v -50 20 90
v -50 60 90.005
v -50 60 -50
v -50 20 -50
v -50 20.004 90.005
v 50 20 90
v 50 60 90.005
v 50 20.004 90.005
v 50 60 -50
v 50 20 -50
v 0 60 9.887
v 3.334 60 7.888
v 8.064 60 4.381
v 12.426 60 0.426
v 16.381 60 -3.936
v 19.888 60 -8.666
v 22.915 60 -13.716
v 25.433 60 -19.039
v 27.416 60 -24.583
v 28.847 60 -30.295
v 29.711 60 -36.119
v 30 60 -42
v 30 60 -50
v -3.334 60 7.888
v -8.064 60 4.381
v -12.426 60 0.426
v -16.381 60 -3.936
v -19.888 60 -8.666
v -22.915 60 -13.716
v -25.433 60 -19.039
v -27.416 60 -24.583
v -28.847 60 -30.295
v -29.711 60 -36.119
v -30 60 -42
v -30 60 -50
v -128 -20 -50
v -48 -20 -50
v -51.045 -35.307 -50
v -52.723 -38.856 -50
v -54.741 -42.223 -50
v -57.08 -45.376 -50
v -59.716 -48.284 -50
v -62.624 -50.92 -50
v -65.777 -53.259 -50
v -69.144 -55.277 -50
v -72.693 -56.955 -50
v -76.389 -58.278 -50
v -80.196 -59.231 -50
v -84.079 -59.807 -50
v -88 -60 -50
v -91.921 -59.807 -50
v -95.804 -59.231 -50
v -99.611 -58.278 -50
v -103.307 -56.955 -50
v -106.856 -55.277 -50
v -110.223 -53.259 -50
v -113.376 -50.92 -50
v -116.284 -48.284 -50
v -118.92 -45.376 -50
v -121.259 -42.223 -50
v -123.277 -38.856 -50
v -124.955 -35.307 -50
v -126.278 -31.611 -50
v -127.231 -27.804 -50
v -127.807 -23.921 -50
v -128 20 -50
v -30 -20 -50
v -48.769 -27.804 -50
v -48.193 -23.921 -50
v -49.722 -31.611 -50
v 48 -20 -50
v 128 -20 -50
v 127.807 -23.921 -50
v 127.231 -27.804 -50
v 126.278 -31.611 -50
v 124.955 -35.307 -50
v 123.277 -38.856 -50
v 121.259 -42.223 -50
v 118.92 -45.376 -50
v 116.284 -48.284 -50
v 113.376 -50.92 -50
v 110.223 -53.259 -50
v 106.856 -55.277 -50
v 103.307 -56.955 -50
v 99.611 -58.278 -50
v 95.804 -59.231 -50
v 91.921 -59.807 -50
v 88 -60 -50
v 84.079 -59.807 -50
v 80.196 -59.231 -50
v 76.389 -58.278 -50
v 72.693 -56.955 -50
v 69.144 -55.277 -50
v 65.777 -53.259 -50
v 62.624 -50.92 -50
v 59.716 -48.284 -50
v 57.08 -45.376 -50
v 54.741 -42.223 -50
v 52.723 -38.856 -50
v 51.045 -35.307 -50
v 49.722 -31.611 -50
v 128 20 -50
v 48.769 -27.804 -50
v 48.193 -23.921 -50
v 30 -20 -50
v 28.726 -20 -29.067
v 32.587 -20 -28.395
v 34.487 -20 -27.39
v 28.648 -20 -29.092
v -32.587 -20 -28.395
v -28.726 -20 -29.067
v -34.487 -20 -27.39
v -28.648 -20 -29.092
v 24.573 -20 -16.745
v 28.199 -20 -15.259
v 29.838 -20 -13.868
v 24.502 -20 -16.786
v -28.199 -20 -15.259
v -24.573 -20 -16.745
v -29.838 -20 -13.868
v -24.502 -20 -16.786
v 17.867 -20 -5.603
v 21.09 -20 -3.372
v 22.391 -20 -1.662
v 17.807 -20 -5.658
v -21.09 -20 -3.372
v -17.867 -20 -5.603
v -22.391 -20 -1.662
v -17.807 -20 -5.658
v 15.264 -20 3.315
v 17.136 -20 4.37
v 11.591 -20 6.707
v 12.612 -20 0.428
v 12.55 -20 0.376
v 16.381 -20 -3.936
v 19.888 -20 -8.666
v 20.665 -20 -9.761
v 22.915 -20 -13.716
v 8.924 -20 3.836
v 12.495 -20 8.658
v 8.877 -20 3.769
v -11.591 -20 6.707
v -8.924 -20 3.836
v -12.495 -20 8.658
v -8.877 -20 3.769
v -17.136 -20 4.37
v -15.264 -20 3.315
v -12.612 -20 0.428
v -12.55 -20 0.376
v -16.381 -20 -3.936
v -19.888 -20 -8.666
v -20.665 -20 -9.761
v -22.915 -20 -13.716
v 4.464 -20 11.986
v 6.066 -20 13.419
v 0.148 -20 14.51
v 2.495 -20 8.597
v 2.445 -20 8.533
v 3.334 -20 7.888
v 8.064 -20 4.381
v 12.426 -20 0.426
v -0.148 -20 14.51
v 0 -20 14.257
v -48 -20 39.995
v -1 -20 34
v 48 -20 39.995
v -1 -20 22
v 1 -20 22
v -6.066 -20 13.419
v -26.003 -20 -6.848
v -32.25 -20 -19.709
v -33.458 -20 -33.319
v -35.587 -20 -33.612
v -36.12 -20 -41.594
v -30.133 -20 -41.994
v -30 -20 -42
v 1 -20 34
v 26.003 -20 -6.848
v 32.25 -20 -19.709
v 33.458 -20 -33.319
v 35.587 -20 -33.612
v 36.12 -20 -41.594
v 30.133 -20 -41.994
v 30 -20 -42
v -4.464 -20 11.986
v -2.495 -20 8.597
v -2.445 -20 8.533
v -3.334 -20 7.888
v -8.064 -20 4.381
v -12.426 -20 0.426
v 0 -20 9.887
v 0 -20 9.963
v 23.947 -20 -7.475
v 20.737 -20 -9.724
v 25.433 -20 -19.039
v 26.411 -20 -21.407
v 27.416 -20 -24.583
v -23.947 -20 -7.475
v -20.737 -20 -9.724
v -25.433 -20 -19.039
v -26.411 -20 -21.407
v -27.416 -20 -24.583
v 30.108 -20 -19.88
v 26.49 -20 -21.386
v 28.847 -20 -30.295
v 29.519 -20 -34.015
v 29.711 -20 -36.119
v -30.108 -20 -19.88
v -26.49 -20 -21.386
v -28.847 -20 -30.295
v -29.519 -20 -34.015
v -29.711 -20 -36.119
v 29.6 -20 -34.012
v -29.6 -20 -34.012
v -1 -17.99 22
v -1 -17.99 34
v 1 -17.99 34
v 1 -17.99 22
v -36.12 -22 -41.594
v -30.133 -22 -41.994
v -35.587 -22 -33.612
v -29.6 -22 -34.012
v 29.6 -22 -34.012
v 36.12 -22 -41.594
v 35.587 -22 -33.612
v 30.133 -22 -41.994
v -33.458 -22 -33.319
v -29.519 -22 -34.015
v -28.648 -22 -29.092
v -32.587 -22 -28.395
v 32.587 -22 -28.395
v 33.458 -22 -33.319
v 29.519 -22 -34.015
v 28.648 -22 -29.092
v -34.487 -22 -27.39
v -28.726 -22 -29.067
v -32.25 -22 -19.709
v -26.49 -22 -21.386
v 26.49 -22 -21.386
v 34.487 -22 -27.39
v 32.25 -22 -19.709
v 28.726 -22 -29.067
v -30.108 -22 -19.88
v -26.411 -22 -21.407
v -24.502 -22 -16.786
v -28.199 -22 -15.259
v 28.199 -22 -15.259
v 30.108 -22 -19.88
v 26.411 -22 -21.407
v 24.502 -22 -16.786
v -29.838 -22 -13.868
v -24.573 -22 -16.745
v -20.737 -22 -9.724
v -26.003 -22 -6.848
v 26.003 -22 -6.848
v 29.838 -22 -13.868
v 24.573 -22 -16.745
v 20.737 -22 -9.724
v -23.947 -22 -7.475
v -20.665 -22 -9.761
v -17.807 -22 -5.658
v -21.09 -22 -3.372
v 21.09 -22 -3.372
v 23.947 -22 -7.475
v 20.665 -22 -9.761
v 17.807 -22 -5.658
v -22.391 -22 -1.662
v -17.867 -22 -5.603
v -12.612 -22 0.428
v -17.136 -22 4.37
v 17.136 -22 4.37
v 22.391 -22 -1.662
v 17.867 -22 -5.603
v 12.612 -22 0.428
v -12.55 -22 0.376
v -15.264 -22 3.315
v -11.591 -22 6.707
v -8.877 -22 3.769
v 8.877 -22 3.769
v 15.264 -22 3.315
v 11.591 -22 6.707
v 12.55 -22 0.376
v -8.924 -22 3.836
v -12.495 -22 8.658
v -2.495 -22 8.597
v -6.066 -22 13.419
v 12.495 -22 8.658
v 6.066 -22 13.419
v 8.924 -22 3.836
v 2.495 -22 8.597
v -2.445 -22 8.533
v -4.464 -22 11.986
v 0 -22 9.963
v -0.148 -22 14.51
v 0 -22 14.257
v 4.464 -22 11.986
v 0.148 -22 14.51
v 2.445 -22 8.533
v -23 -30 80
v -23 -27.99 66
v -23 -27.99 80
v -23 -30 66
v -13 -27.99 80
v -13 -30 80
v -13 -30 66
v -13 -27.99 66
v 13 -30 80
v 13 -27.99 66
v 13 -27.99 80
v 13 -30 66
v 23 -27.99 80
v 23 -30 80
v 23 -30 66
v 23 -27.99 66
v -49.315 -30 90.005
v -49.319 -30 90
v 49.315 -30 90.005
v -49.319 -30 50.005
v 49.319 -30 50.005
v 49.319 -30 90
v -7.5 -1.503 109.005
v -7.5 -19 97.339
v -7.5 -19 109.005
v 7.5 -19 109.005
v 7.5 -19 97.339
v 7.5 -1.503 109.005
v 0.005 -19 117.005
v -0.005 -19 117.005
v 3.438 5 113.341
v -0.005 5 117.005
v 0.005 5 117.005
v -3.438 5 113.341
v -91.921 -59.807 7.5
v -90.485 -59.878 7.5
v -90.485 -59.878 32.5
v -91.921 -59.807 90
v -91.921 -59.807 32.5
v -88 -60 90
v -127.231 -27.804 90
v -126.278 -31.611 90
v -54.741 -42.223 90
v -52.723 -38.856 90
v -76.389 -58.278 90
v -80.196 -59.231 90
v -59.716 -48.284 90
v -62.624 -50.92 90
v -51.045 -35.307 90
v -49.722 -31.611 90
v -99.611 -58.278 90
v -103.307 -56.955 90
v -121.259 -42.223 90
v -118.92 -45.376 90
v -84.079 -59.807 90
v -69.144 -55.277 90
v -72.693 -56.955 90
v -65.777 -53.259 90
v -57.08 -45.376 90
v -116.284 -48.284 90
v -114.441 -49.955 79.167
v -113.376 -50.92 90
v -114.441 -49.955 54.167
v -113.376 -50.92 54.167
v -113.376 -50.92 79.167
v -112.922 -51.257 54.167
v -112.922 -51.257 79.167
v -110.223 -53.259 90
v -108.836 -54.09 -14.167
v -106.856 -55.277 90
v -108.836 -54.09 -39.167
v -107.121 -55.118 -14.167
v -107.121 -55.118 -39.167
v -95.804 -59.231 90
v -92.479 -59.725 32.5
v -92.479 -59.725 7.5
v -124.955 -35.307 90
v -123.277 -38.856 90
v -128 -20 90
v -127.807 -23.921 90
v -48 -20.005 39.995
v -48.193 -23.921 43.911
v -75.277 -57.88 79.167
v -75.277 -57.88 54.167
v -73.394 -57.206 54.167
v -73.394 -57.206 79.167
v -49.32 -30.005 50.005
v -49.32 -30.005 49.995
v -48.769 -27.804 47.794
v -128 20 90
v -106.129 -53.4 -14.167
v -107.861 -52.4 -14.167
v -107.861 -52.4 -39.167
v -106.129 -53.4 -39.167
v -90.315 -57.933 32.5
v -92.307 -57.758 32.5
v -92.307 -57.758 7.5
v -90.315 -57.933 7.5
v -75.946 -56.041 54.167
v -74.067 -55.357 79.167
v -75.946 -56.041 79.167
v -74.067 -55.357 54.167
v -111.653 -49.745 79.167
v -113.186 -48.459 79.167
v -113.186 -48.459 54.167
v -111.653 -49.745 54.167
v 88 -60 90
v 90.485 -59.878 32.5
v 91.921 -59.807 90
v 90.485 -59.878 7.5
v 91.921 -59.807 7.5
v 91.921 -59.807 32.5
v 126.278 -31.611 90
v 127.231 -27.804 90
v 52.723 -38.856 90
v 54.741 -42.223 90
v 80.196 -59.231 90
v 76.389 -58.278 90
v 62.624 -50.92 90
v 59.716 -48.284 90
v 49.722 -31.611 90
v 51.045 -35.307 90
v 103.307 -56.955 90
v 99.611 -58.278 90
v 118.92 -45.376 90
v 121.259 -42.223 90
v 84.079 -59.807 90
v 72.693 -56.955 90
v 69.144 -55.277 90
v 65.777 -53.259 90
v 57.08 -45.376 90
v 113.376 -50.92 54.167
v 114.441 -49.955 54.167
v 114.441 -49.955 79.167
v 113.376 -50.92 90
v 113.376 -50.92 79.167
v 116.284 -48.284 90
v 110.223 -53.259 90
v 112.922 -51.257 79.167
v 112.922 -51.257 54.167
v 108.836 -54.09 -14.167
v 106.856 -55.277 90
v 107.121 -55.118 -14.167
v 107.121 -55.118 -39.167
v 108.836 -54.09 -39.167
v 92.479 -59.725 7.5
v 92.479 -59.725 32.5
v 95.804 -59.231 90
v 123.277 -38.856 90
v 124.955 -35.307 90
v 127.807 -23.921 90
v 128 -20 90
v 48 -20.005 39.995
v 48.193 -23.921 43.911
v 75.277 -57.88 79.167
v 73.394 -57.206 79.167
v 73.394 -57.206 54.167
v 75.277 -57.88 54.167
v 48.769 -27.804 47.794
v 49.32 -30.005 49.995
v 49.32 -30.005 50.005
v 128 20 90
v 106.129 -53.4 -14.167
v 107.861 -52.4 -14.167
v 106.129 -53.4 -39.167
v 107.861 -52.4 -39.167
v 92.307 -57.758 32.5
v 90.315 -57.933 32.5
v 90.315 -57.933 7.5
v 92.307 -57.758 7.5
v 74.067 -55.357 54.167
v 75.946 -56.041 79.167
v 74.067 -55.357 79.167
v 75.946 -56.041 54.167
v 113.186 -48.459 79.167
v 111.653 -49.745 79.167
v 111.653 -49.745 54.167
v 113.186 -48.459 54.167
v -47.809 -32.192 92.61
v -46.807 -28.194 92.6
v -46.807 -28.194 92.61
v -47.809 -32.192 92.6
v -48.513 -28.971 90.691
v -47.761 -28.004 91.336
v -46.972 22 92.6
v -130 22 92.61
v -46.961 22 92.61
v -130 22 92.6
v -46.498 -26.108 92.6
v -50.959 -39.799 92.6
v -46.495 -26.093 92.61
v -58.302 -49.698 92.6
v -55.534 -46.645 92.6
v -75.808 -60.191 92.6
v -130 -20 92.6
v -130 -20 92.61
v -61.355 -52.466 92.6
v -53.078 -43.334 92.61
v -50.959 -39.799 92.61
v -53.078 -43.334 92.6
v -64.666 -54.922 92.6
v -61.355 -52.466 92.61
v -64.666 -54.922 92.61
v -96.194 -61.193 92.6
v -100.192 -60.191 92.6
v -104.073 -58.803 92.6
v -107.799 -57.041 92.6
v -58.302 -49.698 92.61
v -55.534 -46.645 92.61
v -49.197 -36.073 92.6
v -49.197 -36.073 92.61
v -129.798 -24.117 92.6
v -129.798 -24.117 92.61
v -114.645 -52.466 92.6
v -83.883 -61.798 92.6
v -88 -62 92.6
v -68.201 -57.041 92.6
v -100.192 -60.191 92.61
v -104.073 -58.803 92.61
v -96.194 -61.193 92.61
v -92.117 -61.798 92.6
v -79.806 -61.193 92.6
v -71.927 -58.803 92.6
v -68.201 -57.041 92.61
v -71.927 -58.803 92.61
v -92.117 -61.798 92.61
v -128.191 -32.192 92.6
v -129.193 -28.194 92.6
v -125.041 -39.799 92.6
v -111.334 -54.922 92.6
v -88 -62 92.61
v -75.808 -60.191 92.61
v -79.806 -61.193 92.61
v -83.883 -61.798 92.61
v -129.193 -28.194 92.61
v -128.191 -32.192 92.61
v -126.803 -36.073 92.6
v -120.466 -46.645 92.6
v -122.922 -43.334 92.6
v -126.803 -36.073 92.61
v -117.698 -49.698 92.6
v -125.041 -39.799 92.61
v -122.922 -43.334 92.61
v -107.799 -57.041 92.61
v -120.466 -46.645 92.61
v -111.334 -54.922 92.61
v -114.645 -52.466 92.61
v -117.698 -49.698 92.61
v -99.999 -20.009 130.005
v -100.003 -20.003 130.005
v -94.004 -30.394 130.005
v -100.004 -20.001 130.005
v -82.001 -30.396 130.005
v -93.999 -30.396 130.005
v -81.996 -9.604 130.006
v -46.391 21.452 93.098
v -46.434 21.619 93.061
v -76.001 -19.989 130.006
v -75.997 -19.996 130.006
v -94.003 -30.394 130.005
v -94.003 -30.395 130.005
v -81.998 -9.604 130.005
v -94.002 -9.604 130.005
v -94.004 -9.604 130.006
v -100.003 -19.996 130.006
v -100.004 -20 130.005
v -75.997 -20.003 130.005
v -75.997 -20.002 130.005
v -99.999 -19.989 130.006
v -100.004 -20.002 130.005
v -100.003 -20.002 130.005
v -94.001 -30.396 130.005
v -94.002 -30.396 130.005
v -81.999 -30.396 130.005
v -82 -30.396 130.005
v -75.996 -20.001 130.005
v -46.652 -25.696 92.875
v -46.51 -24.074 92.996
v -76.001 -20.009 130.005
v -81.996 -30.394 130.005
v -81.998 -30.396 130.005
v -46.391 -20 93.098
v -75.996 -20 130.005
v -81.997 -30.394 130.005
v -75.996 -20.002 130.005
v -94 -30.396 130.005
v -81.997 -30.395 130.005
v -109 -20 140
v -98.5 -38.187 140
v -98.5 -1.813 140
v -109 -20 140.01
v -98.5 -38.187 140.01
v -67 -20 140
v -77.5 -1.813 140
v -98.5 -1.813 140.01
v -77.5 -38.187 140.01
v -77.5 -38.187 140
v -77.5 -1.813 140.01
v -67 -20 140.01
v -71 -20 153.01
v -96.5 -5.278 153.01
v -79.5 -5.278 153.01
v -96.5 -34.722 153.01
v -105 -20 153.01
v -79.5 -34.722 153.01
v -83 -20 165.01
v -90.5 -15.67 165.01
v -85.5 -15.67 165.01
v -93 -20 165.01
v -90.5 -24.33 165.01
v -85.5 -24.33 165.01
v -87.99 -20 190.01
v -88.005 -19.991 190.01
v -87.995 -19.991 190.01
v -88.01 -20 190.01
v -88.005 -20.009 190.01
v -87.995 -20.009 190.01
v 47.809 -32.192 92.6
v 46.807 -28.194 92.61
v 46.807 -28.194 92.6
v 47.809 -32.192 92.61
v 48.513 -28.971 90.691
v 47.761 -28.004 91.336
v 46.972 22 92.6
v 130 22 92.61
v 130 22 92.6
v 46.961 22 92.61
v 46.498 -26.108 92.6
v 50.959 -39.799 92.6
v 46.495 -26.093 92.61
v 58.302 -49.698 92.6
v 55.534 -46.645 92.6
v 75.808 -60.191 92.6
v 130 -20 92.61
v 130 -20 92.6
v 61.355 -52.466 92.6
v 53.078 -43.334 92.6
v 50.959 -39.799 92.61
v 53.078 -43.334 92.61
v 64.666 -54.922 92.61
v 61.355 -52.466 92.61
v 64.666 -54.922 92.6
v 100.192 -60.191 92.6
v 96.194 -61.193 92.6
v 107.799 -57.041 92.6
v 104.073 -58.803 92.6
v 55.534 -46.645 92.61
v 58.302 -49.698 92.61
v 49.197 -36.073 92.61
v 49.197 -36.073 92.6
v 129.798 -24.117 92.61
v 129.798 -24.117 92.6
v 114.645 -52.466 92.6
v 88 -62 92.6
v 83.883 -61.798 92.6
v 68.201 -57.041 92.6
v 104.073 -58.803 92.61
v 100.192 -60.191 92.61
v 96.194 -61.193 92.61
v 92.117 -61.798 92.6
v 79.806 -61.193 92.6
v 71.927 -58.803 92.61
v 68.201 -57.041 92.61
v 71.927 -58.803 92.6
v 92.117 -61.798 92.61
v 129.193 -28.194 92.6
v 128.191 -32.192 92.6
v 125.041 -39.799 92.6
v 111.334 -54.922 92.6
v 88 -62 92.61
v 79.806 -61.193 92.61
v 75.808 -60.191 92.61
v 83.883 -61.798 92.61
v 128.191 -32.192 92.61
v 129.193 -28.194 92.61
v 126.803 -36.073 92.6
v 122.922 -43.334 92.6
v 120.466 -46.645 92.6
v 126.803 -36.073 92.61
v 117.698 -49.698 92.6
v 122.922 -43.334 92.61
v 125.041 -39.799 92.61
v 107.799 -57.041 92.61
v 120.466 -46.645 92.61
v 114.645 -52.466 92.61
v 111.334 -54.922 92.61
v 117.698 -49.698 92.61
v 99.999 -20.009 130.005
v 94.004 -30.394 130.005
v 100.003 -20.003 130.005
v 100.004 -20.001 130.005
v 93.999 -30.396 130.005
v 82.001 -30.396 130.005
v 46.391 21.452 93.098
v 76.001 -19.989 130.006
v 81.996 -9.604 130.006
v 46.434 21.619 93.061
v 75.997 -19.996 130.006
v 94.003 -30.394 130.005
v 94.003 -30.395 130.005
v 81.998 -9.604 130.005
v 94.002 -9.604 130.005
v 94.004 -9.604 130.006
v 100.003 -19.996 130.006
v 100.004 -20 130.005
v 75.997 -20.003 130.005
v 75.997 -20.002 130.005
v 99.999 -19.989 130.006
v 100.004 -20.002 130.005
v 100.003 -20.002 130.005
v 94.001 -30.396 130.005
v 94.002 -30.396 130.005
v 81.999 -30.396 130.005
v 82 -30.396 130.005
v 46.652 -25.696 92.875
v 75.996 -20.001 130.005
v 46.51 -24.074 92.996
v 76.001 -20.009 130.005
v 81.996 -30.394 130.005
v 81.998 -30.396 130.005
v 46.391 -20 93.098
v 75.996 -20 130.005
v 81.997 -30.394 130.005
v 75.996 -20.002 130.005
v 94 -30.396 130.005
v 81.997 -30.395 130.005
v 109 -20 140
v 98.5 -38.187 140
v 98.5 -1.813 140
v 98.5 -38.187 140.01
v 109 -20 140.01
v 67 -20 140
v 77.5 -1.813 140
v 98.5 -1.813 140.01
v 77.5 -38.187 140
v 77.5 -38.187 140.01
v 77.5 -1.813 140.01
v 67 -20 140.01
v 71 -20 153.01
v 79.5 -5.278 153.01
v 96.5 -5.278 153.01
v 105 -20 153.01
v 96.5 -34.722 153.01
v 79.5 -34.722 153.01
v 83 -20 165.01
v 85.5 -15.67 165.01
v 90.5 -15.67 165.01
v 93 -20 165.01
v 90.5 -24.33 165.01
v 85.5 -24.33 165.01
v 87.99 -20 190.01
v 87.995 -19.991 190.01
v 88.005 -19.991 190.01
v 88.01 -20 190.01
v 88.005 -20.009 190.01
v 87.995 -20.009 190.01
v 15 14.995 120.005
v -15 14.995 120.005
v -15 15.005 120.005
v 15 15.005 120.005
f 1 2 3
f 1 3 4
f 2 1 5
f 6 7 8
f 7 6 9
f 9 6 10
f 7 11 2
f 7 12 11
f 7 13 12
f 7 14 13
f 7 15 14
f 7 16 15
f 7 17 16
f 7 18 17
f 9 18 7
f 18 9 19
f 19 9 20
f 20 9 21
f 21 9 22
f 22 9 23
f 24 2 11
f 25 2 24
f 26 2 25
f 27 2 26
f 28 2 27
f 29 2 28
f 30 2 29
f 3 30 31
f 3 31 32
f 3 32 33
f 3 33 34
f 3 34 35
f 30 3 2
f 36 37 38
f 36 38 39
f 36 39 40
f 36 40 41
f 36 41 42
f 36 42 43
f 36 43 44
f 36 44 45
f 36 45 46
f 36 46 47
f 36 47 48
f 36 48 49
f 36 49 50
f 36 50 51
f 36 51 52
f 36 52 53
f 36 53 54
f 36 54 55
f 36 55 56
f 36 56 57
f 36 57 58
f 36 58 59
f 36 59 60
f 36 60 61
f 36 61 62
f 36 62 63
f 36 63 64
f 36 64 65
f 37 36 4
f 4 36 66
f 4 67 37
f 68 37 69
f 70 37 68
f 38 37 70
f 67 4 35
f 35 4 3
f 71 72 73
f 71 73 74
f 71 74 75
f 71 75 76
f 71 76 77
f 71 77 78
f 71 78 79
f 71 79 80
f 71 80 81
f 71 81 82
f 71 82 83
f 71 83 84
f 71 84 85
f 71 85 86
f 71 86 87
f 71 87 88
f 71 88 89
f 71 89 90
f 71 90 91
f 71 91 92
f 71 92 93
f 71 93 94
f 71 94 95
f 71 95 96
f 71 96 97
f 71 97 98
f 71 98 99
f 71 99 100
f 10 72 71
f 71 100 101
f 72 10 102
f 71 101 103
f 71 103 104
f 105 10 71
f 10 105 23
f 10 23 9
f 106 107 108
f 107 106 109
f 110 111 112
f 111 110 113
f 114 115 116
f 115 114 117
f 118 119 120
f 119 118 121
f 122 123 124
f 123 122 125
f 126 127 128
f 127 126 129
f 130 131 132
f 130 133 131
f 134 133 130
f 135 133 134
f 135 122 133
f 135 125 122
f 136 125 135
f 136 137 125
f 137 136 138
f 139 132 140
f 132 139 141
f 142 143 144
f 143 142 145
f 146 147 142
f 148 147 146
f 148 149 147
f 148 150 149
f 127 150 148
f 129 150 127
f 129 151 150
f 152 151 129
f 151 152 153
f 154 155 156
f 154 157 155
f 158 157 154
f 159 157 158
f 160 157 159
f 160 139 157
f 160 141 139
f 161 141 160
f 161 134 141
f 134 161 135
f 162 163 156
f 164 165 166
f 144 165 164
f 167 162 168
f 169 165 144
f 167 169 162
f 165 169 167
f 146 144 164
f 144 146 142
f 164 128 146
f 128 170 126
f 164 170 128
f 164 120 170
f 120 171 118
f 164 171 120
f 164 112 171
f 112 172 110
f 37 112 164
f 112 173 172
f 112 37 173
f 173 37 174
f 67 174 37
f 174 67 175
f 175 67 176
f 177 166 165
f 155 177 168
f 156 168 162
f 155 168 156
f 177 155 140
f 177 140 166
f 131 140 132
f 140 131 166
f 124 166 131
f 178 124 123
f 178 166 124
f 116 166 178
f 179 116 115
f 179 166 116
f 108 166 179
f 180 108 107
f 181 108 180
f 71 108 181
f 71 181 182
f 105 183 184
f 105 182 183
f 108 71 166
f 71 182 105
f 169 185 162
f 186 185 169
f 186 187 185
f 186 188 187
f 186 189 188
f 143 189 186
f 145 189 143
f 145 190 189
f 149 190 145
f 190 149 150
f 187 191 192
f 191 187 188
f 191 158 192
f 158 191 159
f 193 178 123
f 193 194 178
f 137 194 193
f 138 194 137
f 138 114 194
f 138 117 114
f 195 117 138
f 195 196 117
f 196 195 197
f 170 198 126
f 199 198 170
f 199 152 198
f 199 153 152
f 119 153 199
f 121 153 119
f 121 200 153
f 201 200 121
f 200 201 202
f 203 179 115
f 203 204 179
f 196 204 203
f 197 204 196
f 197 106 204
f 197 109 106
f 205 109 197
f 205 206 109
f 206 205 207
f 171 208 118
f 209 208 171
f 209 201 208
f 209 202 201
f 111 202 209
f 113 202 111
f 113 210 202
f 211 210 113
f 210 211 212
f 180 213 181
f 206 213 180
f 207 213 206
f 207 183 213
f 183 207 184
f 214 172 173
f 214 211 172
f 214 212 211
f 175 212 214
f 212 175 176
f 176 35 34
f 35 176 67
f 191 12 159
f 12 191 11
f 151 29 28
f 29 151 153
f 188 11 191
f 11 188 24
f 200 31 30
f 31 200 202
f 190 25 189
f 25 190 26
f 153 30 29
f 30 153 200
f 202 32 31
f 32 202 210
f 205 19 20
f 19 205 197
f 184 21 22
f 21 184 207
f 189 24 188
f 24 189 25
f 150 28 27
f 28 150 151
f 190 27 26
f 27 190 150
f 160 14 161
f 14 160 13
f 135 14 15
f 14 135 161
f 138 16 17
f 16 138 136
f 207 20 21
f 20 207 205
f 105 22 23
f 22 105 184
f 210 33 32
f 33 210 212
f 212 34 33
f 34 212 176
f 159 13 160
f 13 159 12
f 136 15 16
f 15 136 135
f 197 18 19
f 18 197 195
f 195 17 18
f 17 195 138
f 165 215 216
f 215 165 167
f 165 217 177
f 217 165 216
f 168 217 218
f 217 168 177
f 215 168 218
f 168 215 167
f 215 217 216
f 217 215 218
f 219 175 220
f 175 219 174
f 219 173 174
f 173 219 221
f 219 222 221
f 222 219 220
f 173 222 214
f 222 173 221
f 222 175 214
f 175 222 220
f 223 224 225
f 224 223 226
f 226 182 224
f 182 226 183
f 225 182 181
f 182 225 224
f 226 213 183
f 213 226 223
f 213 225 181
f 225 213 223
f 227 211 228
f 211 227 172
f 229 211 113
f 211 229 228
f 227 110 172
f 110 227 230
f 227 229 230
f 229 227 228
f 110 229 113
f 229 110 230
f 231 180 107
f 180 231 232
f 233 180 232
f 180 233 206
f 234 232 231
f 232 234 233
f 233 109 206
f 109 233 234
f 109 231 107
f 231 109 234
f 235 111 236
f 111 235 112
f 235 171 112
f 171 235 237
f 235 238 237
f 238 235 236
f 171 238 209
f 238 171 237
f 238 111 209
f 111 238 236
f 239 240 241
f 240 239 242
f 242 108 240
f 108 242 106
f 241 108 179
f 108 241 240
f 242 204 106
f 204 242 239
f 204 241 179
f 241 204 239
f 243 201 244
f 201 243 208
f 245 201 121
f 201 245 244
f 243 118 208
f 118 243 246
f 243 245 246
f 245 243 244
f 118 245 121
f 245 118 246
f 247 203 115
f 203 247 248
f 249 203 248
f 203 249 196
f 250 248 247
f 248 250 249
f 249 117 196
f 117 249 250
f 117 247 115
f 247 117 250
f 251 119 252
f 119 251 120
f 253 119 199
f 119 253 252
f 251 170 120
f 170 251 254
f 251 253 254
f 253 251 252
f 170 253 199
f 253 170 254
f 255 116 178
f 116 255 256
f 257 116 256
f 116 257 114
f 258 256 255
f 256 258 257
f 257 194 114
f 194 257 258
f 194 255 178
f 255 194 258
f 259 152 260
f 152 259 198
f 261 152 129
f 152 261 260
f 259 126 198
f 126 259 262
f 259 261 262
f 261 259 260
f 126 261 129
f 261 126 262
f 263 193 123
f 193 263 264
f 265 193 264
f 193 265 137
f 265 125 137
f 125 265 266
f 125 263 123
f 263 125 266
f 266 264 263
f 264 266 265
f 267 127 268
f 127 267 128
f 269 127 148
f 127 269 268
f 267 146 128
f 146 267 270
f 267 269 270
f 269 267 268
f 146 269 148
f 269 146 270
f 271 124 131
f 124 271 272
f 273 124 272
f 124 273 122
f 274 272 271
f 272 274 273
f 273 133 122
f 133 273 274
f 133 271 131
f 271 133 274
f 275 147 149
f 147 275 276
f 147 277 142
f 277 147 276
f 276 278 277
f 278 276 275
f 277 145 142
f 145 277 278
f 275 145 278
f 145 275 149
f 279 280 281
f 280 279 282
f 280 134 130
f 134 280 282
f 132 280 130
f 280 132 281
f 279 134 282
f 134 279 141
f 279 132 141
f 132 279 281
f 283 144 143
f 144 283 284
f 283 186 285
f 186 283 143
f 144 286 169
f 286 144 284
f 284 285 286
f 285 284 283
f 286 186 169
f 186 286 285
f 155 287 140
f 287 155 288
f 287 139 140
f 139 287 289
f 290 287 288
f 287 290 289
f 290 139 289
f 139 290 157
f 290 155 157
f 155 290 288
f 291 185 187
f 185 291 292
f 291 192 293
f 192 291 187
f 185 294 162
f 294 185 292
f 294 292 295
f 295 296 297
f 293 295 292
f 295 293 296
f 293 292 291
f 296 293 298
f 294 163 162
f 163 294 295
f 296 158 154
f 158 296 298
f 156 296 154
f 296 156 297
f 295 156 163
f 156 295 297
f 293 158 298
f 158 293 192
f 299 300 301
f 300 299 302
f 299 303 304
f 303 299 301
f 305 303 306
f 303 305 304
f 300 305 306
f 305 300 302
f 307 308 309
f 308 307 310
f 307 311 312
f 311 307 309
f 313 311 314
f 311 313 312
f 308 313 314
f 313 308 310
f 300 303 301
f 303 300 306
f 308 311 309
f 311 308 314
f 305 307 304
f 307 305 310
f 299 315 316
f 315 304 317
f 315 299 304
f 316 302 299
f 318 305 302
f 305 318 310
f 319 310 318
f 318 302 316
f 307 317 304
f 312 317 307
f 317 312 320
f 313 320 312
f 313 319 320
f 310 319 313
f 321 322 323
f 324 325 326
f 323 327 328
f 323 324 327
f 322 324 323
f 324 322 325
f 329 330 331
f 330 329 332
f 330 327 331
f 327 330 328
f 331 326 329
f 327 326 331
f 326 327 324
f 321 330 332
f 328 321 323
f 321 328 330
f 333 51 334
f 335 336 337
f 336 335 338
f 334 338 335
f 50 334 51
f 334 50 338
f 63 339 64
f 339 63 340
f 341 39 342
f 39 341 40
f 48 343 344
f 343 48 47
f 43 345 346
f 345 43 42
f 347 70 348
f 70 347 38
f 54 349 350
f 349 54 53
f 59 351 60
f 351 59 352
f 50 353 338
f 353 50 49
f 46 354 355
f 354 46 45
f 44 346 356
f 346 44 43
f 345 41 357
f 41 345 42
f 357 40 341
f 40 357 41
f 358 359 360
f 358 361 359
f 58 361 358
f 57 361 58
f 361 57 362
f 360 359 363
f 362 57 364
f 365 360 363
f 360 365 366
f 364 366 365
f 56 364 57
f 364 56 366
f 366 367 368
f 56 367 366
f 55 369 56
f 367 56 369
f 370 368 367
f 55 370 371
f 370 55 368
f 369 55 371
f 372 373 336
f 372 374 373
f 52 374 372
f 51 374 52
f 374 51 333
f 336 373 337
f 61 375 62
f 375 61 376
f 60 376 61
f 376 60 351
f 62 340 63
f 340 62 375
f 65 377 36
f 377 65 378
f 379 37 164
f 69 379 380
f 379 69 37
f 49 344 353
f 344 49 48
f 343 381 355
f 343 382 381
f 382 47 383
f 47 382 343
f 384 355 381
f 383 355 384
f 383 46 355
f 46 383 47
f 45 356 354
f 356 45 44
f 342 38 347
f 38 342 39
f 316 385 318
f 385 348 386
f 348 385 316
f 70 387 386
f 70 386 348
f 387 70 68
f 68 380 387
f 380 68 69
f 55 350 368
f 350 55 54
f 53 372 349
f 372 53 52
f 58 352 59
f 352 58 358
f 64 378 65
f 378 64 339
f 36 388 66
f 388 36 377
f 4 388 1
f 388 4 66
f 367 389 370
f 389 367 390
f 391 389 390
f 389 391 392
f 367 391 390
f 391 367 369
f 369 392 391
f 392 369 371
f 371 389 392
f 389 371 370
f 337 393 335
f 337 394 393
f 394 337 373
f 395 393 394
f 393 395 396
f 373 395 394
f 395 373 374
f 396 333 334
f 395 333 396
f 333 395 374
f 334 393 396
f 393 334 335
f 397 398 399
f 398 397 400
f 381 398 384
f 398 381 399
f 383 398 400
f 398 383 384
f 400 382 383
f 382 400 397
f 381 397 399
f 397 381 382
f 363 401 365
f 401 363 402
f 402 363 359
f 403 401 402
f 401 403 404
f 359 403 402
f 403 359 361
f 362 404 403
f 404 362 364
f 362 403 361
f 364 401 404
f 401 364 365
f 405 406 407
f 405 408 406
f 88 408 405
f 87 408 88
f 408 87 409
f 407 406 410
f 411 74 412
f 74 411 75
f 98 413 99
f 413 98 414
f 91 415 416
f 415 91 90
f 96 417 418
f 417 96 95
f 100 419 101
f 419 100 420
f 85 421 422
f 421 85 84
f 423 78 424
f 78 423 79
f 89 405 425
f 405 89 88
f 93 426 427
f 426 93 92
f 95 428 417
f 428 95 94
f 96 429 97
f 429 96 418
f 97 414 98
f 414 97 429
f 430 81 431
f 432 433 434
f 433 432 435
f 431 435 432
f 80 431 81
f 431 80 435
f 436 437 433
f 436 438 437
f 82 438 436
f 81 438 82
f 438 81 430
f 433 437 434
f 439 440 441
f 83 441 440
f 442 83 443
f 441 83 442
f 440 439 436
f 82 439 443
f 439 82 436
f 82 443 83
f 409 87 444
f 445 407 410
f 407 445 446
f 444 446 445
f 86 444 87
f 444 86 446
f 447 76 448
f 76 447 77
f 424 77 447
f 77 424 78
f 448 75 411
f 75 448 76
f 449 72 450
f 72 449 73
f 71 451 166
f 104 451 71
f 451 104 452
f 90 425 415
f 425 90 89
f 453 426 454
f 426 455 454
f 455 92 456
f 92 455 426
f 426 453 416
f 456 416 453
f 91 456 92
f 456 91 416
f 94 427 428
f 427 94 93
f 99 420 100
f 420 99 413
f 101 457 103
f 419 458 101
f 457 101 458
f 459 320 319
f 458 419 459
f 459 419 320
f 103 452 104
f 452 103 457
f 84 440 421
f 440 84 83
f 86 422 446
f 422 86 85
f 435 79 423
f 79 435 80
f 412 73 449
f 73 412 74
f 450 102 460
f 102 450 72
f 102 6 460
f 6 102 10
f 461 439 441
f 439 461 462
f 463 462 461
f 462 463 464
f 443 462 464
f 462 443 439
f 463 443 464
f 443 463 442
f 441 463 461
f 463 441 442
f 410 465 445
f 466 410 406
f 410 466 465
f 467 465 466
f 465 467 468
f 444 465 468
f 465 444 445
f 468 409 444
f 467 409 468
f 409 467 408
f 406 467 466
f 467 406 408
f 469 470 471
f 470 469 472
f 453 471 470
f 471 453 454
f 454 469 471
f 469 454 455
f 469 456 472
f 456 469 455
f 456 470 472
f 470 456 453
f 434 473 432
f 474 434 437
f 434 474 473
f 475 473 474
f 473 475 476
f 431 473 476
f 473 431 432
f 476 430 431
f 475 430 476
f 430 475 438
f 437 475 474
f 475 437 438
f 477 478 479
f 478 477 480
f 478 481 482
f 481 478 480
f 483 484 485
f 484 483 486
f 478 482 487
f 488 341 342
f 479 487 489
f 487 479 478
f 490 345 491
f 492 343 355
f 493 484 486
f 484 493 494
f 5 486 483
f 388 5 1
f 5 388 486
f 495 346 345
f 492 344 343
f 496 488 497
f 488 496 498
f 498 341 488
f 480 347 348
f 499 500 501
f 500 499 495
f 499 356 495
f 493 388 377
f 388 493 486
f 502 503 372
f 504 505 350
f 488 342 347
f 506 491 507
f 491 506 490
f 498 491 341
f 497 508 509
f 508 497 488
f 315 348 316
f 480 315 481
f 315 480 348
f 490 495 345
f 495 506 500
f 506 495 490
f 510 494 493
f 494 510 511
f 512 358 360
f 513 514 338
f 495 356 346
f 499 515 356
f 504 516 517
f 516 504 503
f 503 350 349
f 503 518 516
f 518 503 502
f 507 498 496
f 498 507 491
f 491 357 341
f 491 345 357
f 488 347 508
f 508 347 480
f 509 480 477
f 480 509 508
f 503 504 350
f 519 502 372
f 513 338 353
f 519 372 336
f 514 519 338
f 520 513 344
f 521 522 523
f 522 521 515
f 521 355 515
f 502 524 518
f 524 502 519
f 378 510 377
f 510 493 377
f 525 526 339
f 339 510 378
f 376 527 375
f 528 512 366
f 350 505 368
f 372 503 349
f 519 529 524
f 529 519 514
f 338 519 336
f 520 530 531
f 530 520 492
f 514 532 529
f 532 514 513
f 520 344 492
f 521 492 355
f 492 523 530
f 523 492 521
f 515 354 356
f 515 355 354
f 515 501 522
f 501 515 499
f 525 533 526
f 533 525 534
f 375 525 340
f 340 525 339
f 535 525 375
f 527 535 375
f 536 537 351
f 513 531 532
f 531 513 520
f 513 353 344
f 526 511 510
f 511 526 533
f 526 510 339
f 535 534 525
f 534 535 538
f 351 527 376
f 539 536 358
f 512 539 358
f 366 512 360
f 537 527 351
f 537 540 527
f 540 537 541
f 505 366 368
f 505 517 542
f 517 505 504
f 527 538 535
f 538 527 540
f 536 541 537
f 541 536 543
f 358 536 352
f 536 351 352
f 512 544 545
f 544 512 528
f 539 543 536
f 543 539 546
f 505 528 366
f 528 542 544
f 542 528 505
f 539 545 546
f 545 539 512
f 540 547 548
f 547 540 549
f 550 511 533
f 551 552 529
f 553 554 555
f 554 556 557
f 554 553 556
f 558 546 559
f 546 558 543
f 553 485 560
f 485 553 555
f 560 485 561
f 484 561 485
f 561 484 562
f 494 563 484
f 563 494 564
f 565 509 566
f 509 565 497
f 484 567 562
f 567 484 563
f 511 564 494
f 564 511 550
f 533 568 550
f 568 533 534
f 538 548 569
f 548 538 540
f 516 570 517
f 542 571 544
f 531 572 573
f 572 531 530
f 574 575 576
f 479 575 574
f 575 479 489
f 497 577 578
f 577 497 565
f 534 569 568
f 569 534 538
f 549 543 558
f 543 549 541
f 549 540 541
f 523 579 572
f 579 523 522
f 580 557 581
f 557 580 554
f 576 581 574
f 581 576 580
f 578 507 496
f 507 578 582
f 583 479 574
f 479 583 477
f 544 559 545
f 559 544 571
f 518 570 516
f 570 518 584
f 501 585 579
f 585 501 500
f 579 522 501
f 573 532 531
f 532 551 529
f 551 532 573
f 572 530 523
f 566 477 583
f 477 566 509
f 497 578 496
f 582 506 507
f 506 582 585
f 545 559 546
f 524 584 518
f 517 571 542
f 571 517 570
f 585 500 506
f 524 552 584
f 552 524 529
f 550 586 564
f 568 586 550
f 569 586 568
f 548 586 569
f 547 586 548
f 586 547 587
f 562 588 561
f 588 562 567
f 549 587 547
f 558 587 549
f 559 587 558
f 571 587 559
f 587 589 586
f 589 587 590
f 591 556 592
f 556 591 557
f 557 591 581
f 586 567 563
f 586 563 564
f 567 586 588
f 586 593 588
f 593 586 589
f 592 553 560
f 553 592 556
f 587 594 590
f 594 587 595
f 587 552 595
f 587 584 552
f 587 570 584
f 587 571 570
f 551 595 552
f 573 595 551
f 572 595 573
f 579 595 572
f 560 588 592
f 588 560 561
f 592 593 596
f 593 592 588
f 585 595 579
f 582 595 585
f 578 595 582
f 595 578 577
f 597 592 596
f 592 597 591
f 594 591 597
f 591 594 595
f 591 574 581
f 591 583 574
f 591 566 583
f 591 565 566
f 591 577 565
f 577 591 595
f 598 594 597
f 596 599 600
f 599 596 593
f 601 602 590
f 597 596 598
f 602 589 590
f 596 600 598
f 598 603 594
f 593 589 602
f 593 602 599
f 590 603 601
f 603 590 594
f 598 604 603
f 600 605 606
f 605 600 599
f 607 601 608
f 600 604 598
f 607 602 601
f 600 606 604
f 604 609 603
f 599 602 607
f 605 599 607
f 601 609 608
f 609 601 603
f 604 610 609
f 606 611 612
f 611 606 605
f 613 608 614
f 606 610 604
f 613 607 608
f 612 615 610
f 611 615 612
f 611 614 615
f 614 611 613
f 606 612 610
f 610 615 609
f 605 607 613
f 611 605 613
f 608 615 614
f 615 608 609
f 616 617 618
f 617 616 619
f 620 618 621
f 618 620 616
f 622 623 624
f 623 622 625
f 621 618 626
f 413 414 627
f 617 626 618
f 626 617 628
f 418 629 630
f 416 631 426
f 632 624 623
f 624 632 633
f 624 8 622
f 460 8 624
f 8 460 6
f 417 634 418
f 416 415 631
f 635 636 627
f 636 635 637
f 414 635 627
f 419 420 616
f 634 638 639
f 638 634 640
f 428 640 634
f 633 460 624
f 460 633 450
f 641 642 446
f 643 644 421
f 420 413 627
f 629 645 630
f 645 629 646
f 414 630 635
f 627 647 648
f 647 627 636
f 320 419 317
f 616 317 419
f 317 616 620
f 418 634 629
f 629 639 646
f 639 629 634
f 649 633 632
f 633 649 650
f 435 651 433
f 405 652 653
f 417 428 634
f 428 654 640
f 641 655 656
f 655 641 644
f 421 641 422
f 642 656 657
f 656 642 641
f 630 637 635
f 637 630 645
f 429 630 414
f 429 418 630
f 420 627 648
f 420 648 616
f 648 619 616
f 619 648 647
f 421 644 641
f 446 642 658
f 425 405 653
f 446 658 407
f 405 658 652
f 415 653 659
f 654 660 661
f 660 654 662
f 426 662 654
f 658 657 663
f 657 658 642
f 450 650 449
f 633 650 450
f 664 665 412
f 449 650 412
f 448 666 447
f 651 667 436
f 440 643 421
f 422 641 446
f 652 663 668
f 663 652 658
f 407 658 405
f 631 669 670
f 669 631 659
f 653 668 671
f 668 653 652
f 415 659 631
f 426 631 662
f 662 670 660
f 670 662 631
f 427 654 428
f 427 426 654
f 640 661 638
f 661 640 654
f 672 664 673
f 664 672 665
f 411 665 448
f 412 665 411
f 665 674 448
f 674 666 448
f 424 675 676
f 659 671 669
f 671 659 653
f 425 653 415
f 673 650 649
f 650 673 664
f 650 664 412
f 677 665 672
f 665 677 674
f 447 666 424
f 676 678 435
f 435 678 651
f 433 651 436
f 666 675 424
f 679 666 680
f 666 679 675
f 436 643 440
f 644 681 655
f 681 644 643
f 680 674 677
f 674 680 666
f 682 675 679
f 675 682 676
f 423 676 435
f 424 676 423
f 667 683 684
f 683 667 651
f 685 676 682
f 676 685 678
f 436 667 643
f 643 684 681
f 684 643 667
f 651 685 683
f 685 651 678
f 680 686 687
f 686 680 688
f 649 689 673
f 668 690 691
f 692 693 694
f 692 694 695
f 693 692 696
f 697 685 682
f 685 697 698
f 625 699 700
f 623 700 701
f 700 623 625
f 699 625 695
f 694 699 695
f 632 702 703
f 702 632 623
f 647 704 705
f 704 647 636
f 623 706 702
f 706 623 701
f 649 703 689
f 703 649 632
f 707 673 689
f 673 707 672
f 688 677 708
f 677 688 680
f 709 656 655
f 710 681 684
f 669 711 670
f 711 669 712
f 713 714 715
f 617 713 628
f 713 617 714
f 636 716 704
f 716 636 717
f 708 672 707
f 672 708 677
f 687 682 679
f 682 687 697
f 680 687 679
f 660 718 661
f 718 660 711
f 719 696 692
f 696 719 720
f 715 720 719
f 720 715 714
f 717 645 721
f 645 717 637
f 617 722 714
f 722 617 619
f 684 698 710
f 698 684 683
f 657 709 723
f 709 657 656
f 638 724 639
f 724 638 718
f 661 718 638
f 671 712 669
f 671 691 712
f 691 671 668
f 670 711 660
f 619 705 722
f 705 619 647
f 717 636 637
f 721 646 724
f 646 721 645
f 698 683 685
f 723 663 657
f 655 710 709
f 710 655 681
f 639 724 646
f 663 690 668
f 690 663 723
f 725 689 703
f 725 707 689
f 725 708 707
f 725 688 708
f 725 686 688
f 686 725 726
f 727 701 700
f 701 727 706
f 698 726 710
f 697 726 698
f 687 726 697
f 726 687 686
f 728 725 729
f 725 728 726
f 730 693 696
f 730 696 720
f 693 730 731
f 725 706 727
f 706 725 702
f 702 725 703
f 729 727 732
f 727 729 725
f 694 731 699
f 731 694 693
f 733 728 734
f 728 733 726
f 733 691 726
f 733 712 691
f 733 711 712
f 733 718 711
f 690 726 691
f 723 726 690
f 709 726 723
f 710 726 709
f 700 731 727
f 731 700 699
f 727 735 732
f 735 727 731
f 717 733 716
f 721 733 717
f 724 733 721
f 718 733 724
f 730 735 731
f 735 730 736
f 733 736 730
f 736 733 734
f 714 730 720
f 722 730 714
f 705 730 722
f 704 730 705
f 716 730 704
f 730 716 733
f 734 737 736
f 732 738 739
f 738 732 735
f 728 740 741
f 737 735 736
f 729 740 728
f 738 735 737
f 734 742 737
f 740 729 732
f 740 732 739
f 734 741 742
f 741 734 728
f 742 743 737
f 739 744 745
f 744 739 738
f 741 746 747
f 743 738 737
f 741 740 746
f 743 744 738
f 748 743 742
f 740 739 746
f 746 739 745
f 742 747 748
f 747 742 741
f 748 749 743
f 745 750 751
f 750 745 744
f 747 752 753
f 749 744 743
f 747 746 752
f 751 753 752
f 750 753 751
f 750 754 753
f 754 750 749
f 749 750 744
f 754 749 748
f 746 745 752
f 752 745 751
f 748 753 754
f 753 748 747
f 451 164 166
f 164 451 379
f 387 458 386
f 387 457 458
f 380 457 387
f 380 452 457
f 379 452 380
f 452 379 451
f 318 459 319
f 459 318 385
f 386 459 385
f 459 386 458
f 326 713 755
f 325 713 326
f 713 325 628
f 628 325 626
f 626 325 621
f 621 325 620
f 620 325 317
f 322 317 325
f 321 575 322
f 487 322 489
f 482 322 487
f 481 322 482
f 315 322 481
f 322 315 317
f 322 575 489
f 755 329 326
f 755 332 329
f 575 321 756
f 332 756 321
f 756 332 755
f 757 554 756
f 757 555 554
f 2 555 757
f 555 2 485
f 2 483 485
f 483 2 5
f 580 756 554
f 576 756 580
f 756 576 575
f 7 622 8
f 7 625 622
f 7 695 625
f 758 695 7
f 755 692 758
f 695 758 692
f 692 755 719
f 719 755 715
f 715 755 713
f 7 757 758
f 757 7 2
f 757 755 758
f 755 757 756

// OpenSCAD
// Quader mit gotischem Spitzbogen-Tunnel

// Quader (unten)
box_w = 100;
box_d = 80;
box_h = 100;
box_y = 20;    // Y-Start (Mitte in Y, 0 = zentriert)

// Quader (oben)
box2_w = 100;
box2_d = 90;
box2_h = 40;
box2_y = 15;   // Y-Start (Mitte in Y, 0 = zentriert)

// Balken (zwischen box und box2)
balken_x = 0;                       // X-Mitte
balken_y = -25;   // Y-Mitte
balken_z = 45;   // Z-Mitte (liegt auf Oberkante box)
balken_w = box_w;                   // Breite (X)
balken_d = 10;                  // Tiefe  (Y)
balken_h = 10;                       // Höhe   (Z)


// Walmdach (trapezförmig)
roof_w       = 100;  // Breite (default = box2_w)
roof_d       = 90;   // Tiefe  (default = box2_d)
roof_h       = 30;   // Firsthöhe
roof_ridge_l = 30;   // Firstlänge (0 = Pyramide)

// Türme (Zylinder links/rechts)
tower_r  = 40;   // Radius
tower_h  = 140;  // Höhe
tower_x  = box_w/2 + 38;  // X-Offset (bündig am Quader)
tower_y  = -20;  // Y-Versatz
tower_z  = 20;   // Z-Versatz (Mitte des Zylinders)

// Schießschächte der Türme (3 Ebenen, oberste hat 2 Schächte)
slit_ang_start = 240;  // Startwinkel Ebene 0 (vorne = -Y)
slit_ang_step  = 25;   // Winkelversatz pro Ebene
slit_top_gap   = 60;   // Winkelabstand der 2 Schächte auf Ebene 3

// Turmdach (unten: rund → Sechseck, oben: Sechseck → Spitze)
tr_r1 = 42;   // Basisradius (etwas größer als Turm)
tr_r2 = 12;   // Radius am Übergang Unter-/Oberteil
tr_h1 = 40;   // Höhe Unterteil
tr_h2 = 60;   // Höhe Oberteil

// Spitzen-Profil: 3 Kontrollpunkte (Radius / Z-Position)
tr_p1_r = 21;  tr_p1_z = 10;
tr_p2_r = 17;  tr_p2_z = 23;
tr_p3_r =  5;  tr_p3_z = 35;

// Dachgaube
dg_w  = 15;   // Breite
dg_h  = 12;   // Höhe Quader
dg_d  =  24;   // Tiefe
dg_rh =  8;   // Höhe Dreieckdach
dg_y  = -7;  // Y-Position
dg_z  = 97;   // Z-Position (Unterkante)

// Box2-Fenster vorne (zwei rechteckige Nischen nebeneinander)
b2win_w     = 10;  // Breite je Fenster
b2win_h     = 14;  // Höhe je Fenster
b2win_gap   = 26;  // Abstand zwischen den beiden Fenstern
b2win_depth =  2;  // Eintiefung (max 2)
b2win_z     = 16;  // Z-Unterkante

// Tunnel
arch_span = 60;
arch_leg  = 10;
arch_r    = arch_span;

// Voussoirs (Bogensteine)
stone_n       = 10;   // Steine pro Bogenhälfte
stone_depth   = 2;   // Vorstand von der Vorderfläche
stone_h_big   = 6;   // radiale Dicke, großer Stein
stone_h_small = 4;   // radiale Dicke, kleiner Stein
stone_w_big   = 8;   // Breite entlang Bogen, großer Stein
stone_w_small = 5;   // Breite, kleiner Stein

// Schießschacht-Fenster (8 Steine: 3 links + 3 rechts + 1 oben + 1 unten)
win_z      = 28;   // Z-Mitte des Fensters
win_gap_w  = 2;    // freier Abstand zwischen linken und rechten Steinen
win_depth  = 2;    // Vorstand von der Vorderfläche
win_height = 12;

fr_h_big   = 5;
fr_h_small = 5;
fr_w_big   = 7;
fr_w_small = 5;
fr_n       = 3;    // Steine pro Seite → gesamt 3+3+1+1 = 8

function fr_h_at(i)  = (i % 2 == 0) ? fr_h_big  : fr_h_small;
function fr_w_at(i)  = (i % 2 == 0) ? fr_w_big  : fr_w_small;
function fr_cum_h(i) = (i == 0) ? 0 : fr_cum_h(i-1) + fr_h_at(i-1);

// ── Hilfsfunktionen: Breite/Höhe/Winkel pro Stein ────────────────────────────
function stone_w_at(i)   = (i % 2 == 0) ? stone_w_big   : stone_w_small;
function stone_h_at(i)   = (i % 2 == 0) ? stone_h_big   : stone_h_small;
function stone_ang_at(i) = stone_w_at(i) / arch_r * (180/PI);
function cum_ang(i)      = (i == 0) ? 0 : cum_ang(i-1) + stone_ang_at(i-1);

// ── Spitzbogen-Profil ─────────────────────────────────────────────────────────
module arch_2d(span, leg_h, r) {
    arch_tip_h = sqrt(r*r - (span/2)*(span/2));
    union() {
        translate([-span/2, 0])
            square([span, leg_h]);
        translate([0, leg_h])
        intersection() {
            translate([-span/2, 0]) circle(r=r, $fn=64);
            translate([ span/2, 0]) circle(r=r, $fn=64);
            translate([-r, 0]) square([2*r, arch_tip_h + 1]);
        }
    }
}

// ── Ein einzelner Voussoir ───────────────────────────────────────────────────
module stone_at(cx, cz, alpha_deg, h, w, depth, front_y) {
    sx = cx + arch_r * cos(alpha_deg);
    sz = cz + arch_r * sin(alpha_deg);
    translate([sx, front_y - depth/2, sz])
    rotate([0, -alpha_deg, 0])
    translate([h/2, 0, 0])
    cube([h, depth, w], center=true);
}

// ── Voussoir-Verzierung (Vorderseite) ────────────────────────────────────────
module arch_verzierung() {
    cr_x = arch_span/2;
    c_z  = arch_leg - box_h/2 - 2;
    fy   = -box_d/2;

    for (i = [0:stone_n-1]) {
        ang = 180 - cum_ang(i) - stone_ang_at(i)/2;
        stone_at(cr_x, c_z, ang, stone_h_at(i), stone_w_at(i), stone_depth, fy);
        mirror([1, 0, 0])
        stone_at(cr_x, c_z, ang, stone_h_at(i), stone_w_at(i), stone_depth, fy);
    }
}

// ── Schießschacht-Rahmensteine ────────────────────────────────────────────────
module fenster_rahmen() {
    fy      = -box_d/2;
    total_h = fr_cum_h(fr_n);
    z_start = win_z - total_h/2;
    cap_w   = win_gap_w + fr_w_big * 2;

    // 3 Seitensteine links und rechts (big-small-big)
    for (i = [0:fr_n-1]) {
        h   = fr_h_at(i);
        w   = fr_w_at(i);
        z_c = z_start + fr_cum_h(i) + h/2;
        for (side = [-1, 1])
            translate([side * (win_gap_w/2 + w/2), fy - win_depth/2, z_c])
            cube([w, win_depth, h], center=true);
    }

    // 1 Stein oben (breiter Abschluss)
    translate([0, fy - win_depth/2, z_start + total_h + fr_h_big/2])
        cube([cap_w, win_depth, fr_h_big], center=true);

    // 1 Stein unten
    translate([0, fy - win_depth/2, z_start - fr_h_small/2])
        cube([cap_w, win_depth, fr_h_small], center=true);
}

// ── Turm-Schießschacht: ein Rahmen auf der Zylinderoberfläche ─────────────────
module turm_koerper() {
    color("green")
    cylinder(r=tower_r, h=tower_h, center=true, $fn=64);
    // Rückseite: Quader von Mitte nach hinten (+Y)
    translate([-tower_r, 0, -tower_h/2])
        cube([2*tower_r, tower_r, tower_h]);
}

module turm_slit_at(ang, z_ctr) {
    total_h = fr_cum_h(fr_n) + fr_h_big + fr_h_small;
    rotate([0, 0, ang])
    translate([tower_r - win_depth/2, 0, z_ctr])
        cube([win_depth + 0.02, win_gap_w, total_h], center=true);
}

module turm_schlitze() {
    for (i = [0:2]) {
        turm_slit_at(slit_ang_start + i * slit_ang_step, -tower_h/3 + i * tower_h/3);
    }
    // 2. Schacht auf oberster Ebene (Winkel via slit_top_gap versetzt)
    turm_slit_at(slit_ang_start + 2*slit_ang_step - slit_top_gap, tower_h/3);
}

// ── Turmdach (Kreis → Sechseck → Kugel → Spitze) ────────────────────────────
module turmdach_spitze(r_base, h) {

    profile = [
        [r_base,  0      ],
        [tr_p1_r, tr_p1_z],
        [tr_p2_r, tr_p2_z],
        [tr_p3_r, tr_p3_z],
        [0.01,    h      ],
    ];
    for (i = [0:len(profile)-2]) {
        r0 = profile[i][0];    z0 = profile[i][1];
        r1 = profile[i+1][0];  z1 = profile[i+1][1];
        translate([0, 0, z0])
        hull() {
            cylinder(r=r0, h=0.01, $fn=6);
            translate([0, 0, z1-z0])
                cylinder(r=r1, h=0.01, $fn=6);
        }
    }
}

// D-förmiger Fuß (Zylinder + Rückseite) als dünne Scheibe bei Radius r
module turmdach_dscheibe(r) {
    cylinder(r=r, h=0.01, $fn=64);
    translate([-r, 0, 0])
        cube([2*r, r, 0.01]);
}

module turmdach(r1, r2, h1, h2) {
    base_r = tower_r;                 // Fuß bündig mit dem Turm → kein Überhang
    cham_h = (r1 - base_r) * 1.3;     // Fasenhöhe (~52° Unterseite, kein Support)
    color("red") {
        // Traufen-Fase: schräg vom Turmradius hoch zur Traufe (druckbar)
        hull() {
            turmdach_dscheibe(base_r );
            translate([0, 0, cham_h]) turmdach_dscheibe(r1);
        }
        // Hauptkegel: Traufe → Sechseck oben
        translate([0, 0, cham_h])
        hull() {
            turmdach_dscheibe(r1);
            translate([0, 0, h1 - cham_h])
                cylinder(r=r2, h=0.01, $fn=6);
        }
    }
    // Oberteil: sechseckige Kontur → Spitze
    translate([0, 0, h1])
        turmdach_spitze(r2, h2);
}

// ── Dachgaube (Quader + Satteldach) ──────────────────────────────────────────
module dachgaube(w, h, d, rh) {
    cube([w, d, h], center=true);
    translate([0, 0, h/2])
    hull() {
        cube([w, d, 0.01], center=true);
        translate([0, 0, rh])
            cube([0.01, d, 0.01], center=true);
    }
}

// ── Kehlleiste: Viertelkreis-Profil ──────────────────────────────────────────
module kehlleiste_profil(r) {
    difference() {
        square(r * 2);
        circle(r);
    }
}

// ── Box2-Fenster: zwei rechteckige Nischen nebeneinander ─────────────────────
module fenster_box2_paar() {
    // intersection: zwei tiefe Schlitze × Tiefenbegrenzer = max b2win_depth tief
    intersection() {
        union() {
            translate([-(b2win_gap/2 + b2win_w), -0.01, 0])
                cube([b2win_w, 100, b2win_h]);
            translate([b2win_gap/2, -0.01, 0])
                cube([b2win_w, 100, b2win_h]);
        }
        translate([-(b2win_gap/2 + b2win_w) - 1, -0.01, -1])
            cube([2*b2win_w + b2win_gap + 2, b2win_depth + 0.02, b2win_h + 2]);
    }
}


// ── Walmdach ──────────────────────────────────────────────────────────────────
module walmdach(w, d, h, ridge_l) {
    hull() {
        cube([w, d, 0.01], center=true);
        translate([0, 0, h])
            cube([max(ridge_l, 0.01), 0.01, 0.01], center=true);
    }
}


// ── Balken (45°-Fase als Stützersatz für den Überhang) ───────────────────────
// Gerader Keil statt rundem Zylinderschnitt: die Unterseite läuft mit
// konstanter Neigung von der box-Vorderkante hoch zur box2-Vorderkante,
// dadurch nirgends flacher als die Druckbarkeitsgrenze (kein Support nötig).
module balken(x, y, z, w, d, h) {
    yb = y + d/2;   // box-Seite  (hinten, +Y)
    yf = y - d/2;   // box2-Seite (vorne,  -Y, Überhangkante)
    zb = z - h/2;   // unten
    zt = z + h/2;   // oben (Unterkante box2)
    eps = 0.01;
    color("lightblue")
    hull() {
        translate([x, yb, zb]) cube([w, eps, eps], center=true); // Fuß an box
        translate([x, yb, zt]) cube([w, eps, eps], center=true); // hintere Oberkante
        translate([x, yf, zt]) cube([w, eps, eps], center=true); // vordere Oberkante (trägt box2)
    }
}

// ── Szene ─────────────────────────────────────────────────────────────────────
translate([0, box_y, 0]) {
    difference() {
        cube([box_w, box_d, box_h], true);
        translate([0, box_d/2 + 2, -box_h/2 - 2])
        rotate([90, 0, 0])
        linear_extrude(box_d + 5)
        arch_2d(arch_span, arch_leg, arch_r);
        // Schießschacht vorne (bündig, 2 tief)
        translate([0, -box_d/2 + win_depth/2, win_z])
            cube([win_gap_w, win_depth + 0.02, win_height], center=true);
    }
    arch_verzierung();
}

// Balken Rundung zwischen box und box2
balken(balken_x, balken_y, balken_z, balken_w, balken_d, balken_h);

// Türme
translate([-tower_x, tower_y, tower_z]) {
    difference() {
        turm_koerper();
        turm_schlitze();
    }
}
mirror([1, 0, 0])
translate([-tower_x, tower_y, tower_z]) {
    difference() {
        turm_koerper();
        turm_schlitze();
    }
}

// Turmdächer
translate([-tower_x, tower_y, tower_z + tower_h/2])
    turmdach(tr_r1, tr_r2, tr_h1, tr_h2);
mirror([1, 0, 0])
translate([-tower_x, tower_y, tower_z + tower_h/2])
    turmdach(tr_r1, tr_r2, tr_h1, tr_h2);


// Quader oben mit Fensternischen
translate([0, box2_y, box_h/2 + box2_h/2])
difference() {
    cube([box2_w, box2_d, box2_h], true);
    // Vorderfenster: 1 Ebene
    translate([0, -box2_d/2, b2win_z - box2_h/2])
        fenster_box2_paar();
}

// Dach
translate([0, box2_y, box_h/2 + box2_h])
    walmdach(roof_w, roof_d, roof_h, roof_ridge_l);

// Dachgaube
translate([0, dg_y, dg_z + dg_h/2])
    dachgaube(dg_w, dg_h, dg_d, dg_rh);
